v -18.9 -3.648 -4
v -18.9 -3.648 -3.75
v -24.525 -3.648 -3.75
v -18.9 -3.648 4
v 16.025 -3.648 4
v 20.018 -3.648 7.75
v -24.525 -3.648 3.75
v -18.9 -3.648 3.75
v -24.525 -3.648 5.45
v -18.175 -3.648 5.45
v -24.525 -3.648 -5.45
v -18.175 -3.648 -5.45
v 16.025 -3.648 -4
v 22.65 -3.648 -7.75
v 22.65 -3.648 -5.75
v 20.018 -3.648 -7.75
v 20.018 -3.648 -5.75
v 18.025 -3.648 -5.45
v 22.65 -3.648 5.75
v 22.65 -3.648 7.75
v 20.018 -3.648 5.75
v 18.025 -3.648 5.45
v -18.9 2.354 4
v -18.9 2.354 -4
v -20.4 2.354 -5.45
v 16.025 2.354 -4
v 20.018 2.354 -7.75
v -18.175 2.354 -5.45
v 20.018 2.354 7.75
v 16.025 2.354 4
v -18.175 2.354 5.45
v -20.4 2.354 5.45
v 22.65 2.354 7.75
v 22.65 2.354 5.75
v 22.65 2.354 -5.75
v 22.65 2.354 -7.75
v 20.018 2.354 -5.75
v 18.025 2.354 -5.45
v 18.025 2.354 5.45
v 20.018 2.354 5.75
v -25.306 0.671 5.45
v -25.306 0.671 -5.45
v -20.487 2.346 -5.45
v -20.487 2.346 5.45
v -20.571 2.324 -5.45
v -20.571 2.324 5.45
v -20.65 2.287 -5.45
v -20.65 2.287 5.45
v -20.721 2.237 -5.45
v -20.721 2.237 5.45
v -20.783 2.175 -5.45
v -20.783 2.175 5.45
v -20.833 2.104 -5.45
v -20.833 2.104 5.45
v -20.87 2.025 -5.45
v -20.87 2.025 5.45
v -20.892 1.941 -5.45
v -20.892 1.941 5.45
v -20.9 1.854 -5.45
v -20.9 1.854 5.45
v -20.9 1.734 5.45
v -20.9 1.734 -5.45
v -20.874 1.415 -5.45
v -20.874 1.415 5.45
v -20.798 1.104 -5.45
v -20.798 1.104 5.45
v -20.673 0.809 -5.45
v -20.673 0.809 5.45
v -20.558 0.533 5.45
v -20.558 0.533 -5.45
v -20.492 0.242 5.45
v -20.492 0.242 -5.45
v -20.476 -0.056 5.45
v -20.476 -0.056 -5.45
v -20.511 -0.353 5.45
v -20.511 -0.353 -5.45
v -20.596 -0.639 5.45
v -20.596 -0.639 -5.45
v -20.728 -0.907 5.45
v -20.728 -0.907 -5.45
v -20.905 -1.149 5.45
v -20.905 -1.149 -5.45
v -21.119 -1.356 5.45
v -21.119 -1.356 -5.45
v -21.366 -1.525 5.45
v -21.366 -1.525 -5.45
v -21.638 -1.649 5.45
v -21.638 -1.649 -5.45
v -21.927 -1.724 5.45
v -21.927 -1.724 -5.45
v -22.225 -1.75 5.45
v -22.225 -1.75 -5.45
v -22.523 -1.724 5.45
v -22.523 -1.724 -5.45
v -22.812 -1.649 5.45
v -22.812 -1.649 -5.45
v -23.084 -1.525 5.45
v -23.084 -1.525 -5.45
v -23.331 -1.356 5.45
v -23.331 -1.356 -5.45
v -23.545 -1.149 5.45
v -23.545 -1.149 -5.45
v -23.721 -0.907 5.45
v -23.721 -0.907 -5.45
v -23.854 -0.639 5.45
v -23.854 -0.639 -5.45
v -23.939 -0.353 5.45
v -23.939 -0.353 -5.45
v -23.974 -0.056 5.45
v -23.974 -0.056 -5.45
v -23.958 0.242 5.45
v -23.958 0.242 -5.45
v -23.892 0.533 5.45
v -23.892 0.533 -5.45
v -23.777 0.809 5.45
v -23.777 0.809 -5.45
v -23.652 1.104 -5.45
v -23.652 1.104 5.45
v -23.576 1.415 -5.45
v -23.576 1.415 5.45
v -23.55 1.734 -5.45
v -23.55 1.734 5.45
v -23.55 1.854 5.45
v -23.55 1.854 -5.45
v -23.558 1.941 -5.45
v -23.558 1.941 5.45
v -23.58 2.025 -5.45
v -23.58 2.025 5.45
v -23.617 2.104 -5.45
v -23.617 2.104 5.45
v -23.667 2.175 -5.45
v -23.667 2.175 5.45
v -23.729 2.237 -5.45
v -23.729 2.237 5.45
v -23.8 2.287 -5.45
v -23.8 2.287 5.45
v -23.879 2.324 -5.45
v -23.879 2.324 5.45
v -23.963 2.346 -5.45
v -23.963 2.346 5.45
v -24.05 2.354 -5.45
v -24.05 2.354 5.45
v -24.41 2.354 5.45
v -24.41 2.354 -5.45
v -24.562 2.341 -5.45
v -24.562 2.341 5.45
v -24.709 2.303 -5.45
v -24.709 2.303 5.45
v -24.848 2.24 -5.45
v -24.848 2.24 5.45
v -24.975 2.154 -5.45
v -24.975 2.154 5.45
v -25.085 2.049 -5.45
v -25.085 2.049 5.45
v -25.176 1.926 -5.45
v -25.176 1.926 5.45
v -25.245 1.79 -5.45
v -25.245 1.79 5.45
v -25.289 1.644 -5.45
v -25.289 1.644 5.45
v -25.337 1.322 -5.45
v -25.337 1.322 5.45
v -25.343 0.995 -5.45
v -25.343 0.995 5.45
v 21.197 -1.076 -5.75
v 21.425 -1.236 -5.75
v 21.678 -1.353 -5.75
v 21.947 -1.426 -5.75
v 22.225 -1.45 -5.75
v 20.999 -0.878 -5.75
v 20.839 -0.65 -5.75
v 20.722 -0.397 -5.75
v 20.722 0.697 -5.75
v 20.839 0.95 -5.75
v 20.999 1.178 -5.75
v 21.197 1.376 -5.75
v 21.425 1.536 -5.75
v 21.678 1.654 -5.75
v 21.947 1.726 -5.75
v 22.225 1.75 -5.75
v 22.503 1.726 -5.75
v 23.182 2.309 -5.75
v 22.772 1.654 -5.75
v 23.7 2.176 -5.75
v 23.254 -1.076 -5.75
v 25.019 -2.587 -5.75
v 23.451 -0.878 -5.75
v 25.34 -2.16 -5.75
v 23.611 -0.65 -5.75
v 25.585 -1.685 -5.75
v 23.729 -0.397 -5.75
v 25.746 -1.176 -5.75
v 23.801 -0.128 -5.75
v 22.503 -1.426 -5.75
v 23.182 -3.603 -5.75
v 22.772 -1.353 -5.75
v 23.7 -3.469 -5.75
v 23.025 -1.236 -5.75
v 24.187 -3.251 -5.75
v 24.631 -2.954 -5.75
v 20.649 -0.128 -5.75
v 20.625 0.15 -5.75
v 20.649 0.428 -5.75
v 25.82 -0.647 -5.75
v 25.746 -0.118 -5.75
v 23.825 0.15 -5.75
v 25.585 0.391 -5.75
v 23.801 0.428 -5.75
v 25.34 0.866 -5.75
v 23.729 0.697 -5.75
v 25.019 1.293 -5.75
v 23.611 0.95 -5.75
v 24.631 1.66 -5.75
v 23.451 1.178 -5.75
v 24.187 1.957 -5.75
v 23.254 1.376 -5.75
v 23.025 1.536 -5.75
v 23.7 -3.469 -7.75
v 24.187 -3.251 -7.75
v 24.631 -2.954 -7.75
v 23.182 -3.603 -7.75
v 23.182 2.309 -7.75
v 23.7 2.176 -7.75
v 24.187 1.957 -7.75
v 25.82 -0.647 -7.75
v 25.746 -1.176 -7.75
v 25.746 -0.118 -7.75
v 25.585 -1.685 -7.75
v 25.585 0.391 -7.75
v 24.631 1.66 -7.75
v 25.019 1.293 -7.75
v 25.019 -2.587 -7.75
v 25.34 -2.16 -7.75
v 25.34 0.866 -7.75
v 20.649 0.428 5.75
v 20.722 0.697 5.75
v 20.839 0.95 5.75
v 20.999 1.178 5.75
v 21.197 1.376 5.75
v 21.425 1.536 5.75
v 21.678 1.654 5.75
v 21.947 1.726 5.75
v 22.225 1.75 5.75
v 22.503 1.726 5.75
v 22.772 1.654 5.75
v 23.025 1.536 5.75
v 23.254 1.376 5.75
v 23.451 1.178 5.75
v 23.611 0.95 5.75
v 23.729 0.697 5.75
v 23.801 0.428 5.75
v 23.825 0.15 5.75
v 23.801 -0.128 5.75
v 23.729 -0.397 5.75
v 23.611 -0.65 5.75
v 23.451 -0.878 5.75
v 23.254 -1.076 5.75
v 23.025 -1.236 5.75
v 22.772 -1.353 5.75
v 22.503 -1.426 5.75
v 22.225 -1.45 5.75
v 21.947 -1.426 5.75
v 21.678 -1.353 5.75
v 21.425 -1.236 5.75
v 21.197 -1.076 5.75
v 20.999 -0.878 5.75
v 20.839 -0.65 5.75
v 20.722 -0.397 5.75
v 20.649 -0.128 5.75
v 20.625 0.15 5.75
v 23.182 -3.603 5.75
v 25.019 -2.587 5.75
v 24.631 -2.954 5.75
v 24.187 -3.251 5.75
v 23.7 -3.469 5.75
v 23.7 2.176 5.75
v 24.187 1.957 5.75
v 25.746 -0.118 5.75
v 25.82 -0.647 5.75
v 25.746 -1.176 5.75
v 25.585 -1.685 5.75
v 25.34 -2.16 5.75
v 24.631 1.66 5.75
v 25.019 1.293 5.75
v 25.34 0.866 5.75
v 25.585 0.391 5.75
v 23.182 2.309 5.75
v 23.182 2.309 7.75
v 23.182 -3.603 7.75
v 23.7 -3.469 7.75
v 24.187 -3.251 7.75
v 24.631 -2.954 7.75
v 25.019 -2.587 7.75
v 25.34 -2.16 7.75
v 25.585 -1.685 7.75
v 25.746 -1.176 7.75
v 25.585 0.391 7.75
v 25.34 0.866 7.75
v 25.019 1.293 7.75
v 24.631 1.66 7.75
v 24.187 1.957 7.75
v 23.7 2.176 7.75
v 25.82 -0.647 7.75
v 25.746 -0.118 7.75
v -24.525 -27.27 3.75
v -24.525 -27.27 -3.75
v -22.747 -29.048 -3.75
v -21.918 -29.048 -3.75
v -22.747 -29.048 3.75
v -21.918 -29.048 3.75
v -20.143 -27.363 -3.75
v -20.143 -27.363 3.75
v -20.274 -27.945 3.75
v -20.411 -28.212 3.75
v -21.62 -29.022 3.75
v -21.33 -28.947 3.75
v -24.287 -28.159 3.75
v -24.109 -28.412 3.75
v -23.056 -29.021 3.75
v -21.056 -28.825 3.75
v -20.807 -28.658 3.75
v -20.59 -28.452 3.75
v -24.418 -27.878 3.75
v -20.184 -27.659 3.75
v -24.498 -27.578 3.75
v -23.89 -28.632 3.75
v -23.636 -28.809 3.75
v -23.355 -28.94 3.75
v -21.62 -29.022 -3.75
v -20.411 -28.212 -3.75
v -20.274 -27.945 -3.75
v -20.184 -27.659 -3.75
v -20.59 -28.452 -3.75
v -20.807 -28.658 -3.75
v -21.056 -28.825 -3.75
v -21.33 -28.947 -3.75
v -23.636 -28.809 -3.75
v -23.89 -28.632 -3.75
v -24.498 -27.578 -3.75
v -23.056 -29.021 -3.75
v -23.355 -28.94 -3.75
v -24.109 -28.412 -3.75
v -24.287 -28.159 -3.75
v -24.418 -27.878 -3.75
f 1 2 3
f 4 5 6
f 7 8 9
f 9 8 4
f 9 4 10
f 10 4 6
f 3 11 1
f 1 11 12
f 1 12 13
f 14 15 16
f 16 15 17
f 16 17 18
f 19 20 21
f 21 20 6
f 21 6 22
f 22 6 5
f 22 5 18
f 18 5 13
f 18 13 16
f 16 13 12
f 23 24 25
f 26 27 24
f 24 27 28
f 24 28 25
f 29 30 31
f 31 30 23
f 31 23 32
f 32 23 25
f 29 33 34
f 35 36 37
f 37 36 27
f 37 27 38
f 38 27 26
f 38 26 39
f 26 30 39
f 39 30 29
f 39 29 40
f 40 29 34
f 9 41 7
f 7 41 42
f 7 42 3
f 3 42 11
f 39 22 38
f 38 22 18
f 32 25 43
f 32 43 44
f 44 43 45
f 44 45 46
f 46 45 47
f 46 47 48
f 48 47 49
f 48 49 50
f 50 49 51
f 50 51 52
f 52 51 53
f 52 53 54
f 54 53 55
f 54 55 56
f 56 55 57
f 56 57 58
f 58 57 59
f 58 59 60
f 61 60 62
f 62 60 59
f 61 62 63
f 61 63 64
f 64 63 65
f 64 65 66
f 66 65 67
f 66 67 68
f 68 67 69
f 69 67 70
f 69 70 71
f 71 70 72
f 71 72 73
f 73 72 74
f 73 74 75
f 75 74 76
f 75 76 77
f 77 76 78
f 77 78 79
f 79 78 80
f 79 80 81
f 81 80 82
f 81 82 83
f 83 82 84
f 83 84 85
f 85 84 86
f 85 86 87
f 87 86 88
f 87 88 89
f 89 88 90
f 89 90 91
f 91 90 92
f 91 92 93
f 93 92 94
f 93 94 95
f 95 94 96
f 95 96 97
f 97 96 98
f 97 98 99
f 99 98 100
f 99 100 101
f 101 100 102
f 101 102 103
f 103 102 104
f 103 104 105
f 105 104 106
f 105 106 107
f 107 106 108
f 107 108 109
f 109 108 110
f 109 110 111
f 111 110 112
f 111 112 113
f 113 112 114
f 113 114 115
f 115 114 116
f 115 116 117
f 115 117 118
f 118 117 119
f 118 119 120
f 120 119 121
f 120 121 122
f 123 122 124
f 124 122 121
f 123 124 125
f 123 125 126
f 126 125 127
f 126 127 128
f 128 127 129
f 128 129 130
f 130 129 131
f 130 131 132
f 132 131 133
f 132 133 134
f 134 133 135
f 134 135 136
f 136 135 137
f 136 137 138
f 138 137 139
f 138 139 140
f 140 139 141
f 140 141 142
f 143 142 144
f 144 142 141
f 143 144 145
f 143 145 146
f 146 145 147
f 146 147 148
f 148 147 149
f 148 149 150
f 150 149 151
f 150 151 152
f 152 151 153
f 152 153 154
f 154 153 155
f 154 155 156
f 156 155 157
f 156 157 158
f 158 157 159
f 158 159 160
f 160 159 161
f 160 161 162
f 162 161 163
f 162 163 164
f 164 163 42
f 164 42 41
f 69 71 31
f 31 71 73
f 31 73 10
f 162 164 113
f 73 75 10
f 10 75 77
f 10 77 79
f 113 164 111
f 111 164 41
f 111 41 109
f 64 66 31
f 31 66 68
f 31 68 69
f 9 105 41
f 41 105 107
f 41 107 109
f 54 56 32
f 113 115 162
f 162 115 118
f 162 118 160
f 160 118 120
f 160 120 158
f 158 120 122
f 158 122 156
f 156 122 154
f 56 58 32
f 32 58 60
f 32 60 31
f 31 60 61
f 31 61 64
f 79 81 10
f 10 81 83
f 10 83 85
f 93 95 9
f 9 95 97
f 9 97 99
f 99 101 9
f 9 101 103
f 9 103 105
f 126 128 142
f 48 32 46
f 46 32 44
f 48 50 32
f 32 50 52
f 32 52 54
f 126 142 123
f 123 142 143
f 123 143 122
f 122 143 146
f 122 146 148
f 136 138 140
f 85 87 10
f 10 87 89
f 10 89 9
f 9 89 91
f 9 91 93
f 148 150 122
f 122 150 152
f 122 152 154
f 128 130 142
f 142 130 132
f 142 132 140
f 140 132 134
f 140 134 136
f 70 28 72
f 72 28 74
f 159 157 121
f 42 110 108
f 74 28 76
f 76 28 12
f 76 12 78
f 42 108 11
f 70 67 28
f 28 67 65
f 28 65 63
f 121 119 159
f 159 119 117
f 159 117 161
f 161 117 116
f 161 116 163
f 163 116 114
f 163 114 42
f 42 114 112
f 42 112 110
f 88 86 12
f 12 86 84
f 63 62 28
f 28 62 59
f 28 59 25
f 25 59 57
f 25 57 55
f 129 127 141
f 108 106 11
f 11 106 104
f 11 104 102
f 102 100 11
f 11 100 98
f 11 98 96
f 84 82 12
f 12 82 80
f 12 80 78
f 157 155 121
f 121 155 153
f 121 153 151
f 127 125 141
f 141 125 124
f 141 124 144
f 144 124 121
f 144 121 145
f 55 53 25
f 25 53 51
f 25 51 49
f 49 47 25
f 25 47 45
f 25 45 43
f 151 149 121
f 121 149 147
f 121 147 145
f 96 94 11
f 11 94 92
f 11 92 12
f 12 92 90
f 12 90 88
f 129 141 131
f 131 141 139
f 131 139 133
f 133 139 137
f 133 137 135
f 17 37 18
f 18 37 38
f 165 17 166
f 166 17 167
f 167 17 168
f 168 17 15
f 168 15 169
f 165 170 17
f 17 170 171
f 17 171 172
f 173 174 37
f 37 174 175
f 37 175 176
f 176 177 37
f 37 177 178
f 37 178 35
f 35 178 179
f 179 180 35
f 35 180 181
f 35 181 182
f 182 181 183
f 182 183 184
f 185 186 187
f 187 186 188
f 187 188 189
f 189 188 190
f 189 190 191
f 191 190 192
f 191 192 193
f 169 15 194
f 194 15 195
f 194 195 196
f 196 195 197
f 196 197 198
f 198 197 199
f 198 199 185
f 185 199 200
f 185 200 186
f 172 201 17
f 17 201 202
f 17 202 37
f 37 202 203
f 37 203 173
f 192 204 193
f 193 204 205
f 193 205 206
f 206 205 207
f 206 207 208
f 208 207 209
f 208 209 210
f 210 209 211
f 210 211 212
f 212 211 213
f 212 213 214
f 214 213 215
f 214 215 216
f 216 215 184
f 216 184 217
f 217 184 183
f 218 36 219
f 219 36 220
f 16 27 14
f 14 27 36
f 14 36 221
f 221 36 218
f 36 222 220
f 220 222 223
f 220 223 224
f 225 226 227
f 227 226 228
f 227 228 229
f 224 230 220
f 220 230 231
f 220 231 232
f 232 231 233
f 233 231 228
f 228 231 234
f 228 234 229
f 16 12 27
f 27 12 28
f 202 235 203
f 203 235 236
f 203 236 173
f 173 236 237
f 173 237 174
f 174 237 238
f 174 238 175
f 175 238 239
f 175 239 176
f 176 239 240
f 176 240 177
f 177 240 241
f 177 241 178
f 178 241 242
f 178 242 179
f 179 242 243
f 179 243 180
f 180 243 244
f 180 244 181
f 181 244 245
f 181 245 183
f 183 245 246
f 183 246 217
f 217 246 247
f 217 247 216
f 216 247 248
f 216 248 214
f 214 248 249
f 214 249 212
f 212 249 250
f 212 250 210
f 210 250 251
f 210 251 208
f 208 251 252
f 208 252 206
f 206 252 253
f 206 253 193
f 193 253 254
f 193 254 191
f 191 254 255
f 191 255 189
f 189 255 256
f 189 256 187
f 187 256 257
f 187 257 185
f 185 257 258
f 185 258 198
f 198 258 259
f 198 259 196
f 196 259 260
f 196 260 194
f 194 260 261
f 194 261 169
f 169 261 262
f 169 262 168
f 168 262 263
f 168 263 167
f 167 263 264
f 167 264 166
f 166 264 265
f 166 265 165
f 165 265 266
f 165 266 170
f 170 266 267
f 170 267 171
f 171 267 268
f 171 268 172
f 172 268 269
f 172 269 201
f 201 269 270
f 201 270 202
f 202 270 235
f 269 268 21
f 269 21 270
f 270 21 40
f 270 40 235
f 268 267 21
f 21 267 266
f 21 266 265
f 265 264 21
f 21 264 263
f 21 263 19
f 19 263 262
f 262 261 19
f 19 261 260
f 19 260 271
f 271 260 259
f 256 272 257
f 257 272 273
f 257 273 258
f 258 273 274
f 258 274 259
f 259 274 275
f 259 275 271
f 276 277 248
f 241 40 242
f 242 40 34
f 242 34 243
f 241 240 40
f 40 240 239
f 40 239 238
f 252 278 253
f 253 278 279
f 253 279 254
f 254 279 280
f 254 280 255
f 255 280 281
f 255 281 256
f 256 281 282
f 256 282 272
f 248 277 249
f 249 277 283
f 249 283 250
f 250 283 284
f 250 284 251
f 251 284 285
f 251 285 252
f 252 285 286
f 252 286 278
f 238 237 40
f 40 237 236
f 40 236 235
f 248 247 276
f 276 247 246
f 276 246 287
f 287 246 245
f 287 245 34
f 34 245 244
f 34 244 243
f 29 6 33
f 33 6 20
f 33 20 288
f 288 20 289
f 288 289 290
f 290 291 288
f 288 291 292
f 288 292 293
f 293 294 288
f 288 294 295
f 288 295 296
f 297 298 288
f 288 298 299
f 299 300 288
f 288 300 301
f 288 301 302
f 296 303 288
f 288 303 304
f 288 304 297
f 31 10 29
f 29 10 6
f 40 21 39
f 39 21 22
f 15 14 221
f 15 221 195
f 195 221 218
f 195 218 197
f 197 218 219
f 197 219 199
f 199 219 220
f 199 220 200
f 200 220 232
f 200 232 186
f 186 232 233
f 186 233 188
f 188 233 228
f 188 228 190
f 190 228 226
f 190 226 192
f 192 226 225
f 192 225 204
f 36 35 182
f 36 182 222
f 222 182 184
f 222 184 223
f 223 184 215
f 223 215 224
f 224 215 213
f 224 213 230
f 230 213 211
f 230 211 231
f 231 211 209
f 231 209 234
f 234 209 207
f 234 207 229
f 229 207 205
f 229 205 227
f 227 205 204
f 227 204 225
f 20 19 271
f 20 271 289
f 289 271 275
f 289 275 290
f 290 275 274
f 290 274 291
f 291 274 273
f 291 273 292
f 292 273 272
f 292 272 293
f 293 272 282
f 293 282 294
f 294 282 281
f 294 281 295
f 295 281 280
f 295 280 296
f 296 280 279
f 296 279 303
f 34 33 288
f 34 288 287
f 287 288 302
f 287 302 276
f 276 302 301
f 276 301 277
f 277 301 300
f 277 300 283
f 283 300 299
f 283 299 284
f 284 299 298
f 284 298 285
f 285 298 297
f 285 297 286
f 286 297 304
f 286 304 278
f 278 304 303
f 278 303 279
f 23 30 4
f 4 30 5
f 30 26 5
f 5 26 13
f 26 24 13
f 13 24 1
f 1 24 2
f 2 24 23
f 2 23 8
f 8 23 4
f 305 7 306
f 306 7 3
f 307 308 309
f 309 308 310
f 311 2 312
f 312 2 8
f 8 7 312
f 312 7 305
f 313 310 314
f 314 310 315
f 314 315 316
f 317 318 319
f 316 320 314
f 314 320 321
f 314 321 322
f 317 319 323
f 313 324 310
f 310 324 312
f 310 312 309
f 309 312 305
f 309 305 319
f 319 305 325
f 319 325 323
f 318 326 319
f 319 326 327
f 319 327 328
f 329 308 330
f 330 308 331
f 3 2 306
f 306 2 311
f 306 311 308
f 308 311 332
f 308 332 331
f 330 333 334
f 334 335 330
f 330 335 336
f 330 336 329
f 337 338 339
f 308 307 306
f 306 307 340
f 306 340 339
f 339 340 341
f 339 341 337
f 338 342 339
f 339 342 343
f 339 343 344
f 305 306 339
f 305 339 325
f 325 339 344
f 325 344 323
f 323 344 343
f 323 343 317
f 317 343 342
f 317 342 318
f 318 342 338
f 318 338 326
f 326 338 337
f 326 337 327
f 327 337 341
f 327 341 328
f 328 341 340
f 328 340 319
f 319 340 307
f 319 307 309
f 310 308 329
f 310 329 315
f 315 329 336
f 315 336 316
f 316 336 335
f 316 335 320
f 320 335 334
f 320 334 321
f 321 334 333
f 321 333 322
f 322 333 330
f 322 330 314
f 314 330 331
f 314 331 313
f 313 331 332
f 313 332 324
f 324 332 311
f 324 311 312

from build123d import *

# Parameters (mm, degrees)
BOSS_EXTRUDE1_DEPTH   = 5.45
BOSS_EXTRUDE1_2_DEPTH = 5.45
BOSS_EXTRUDE2_DEPTH   = 5.75
BOSS_EXTRUDE3_DEPTH   = 6.001690088
FILLET1_R             = 3.175
SKETCH3_W             = 34.925
SKETCH3_H             = 8
CUT_EXTRUDE1_DEPTH    = 28.618228517
BOSS_EXTRUDE5_DEPTH   = 3.75
FILLET2_R             = 1.778


with BuildPart() as part:
    # Sketch1 → Boss-Extrude1 (new, symmetric)
    with BuildSketch(Plane.XY):
        with BuildLine():
            ThreePointArc((20.625, 0.15), (20.842969199, -0.656220109), (21.43748858, -1.242776279))
            ThreePointArc((21.43748858, -1.242776279), (23.824989974, 0.155664255), (21.42764708, 1.537165571))
            ThreePointArc((21.42764708, 1.537165571), (20.840123711, 0.951322447), (20.625, 0.15))
        make_face()
    extrude(amount=BOSS_EXTRUDE1_DEPTH, both=True)

    # Sketch1<4> → Boss-Extrude2 (add, symmetric)
    with BuildSketch(Plane.XY):
        with BuildLine():
            ThreePointArc((20.625, 0.15), (20.842969199, -0.656220109), (21.43748858, -1.242776279))
            ThreePointArc((21.43748858, -1.242776279), (23.824989974, 0.155664255), (21.42764708, 1.537165571))
            ThreePointArc((21.42764708, 1.537165571), (20.840123711, 0.951322447), (20.625, 0.15))
        make_face()
    extrude(amount=BOSS_EXTRUDE2_DEPTH, both=True)



with BuildPart() as body_2:
    # Sketch1 → Boss-Extrude1 2 (new, symmetric)
    with BuildSketch(Plane.XY):
        with BuildLine():
            Line((-24.525, -3.647655774), (18.025, -3.647655774))
            Line((18.025, -3.647655774), (18.025, 2.354034313))
            Line((18.025, 2.354034313), (-18.725, 2.354034313))
            Line((-18.725, 2.354034313), (-20.4, 2.354034313))
            ThreePointArc((-20.4, 2.354034313), (-20.753553391, 2.207587704), (-20.9, 1.854034313))
            Line((-20.9, 1.854034313), (-20.9, 1.734034313))
            ThreePointArc((-20.9, 1.734034313), (-20.842506971, 1.257939085), (-20.673333333, 0.809216013))
            ThreePointArc((-20.673333333, 0.809216013), (-22.225, -1.75), (-23.776666667, 0.809216013))
            ThreePointArc((-23.776666667, 0.809216013), (-23.607493029, 1.257939085), (-23.55, 1.734034313))
            Line((-23.55, 1.734034313), (-23.55, 1.854034313))
            ThreePointArc((-23.55, 1.854034313), (-23.696446609, 2.207587704), (-24.05, 2.354034313))
            Line((-24.05, 2.354034313), (-24.409724637, 2.354034313))
            ThreePointArc((-24.409724637, 2.354034313), (-24.974960254, 2.154397574), (-25.289436326, 1.644053639))
            ThreePointArc((-25.289436326, 1.644053639), (-25.345434425, 1.158547963), (-25.305905598, 0.671424755))
            Line((-25.305905598, 0.671424755), (-24.525, -3.647655774))
        make_face()
    extrude(amount=BOSS_EXTRUDE1_2_DEPTH, both=True)


with BuildPart() as part_1:
    add(part.part)

    add(body_2.part)  # Boss-Extrude3 merges body 2
    # Sketch2 → Boss-Extrude3 (add)
    with BuildSketch(Plane(origin=(0, -3.647655774, 0), x_dir=(-1, 0, 0), z_dir=(0, -1, 0))):
        Polygon((18.175, 5.45), (-18.025, 5.45), (18.175, 0), align=None)
        Polygon((-25.825, 7.75), (-25.825, 5.75), (-20.01766055, 5.75), (-18.025, 5.45), (18.175, 5.45), (-20.01766055, 7.75), align=None)
        Polygon((18.175, -5.45), (18.175, 0), (-18.025, -5.45), align=None)
        Polygon((-20.01766055, -7.75), (18.175, -5.45), (-18.025, -5.45), (-20.01766055, -5.75), (-25.825, -5.75), (-25.825, -7.75), align=None)
    extrude(amount=-BOSS_EXTRUDE3_DEPTH)

    # Fillet1
    # the kernel refuses this fillet: 3.175 mm, written as the material it takes off along each edge
    with BuildSketch(Plane(origin=(25.825, 2.354034313, -15.687500001), x_dir=(-1, 0, 0), z_dir=(0, 0, 1)), Plane(origin=(25.825, 2.354034313, -2.187500001), x_dir=(-1, 0, 0), z_dir=(0, 0, 1))) as fillet1_piece_1:
        with BuildLine():
            CenterArc((FILLET1_R, FILLET1_R), FILLET1_R, 180, 90)
            Line((0, FILLET1_R), (0, 0))
            Line((0, 0), (FILLET1_R, 0))
        make_face()
    extrude(amount=17.875000002, mode=Mode.SUBTRACT)
    with BuildSketch(Plane(origin=(25.825, -3.647655774, -15.6875), x_dir=(-1, 0, 0), z_dir=(0, 0, 1))) as fillet1_piece_2:
        with BuildLine():
            CenterArc((FILLET1_R, -FILLET1_R), FILLET1_R, 90, 90)
            Line((0, -FILLET1_R), (0, 0))
            Line((0, 0), (FILLET1_R, 0))
        make_face()
    extrude(amount=17.875, mode=Mode.SUBTRACT)
    with BuildSketch(Plane(origin=(25.825, -3.647655774, -2.1875), x_dir=(0, 1, 0), z_dir=(0, 0, 1))) as fillet1_piece_3:
        with BuildLine():
            CenterArc((FILLET1_R, FILLET1_R), FILLET1_R, 180, 90)
            Line((0, FILLET1_R), (0, 0))
            Line((0, 0), (FILLET1_R, 0))
        make_face()
    extrude(amount=17.875, mode=Mode.SUBTRACT)

    # Sketch3 → Cut-Extrude1 (cut, through all)
    with BuildSketch(Plane(origin=(0, -3.647655774, 0), x_dir=(-1, 0, 0), z_dir=(0, -1, 0))):
        with Locations((1.4375, 0)):
            Rectangle(SKETCH3_W, SKETCH3_H)
    extrude(amount=-CUT_EXTRUDE1_DEPTH, mode=Mode.SUBTRACT)

    # Sketch4 → Boss-Extrude5 (add, symmetric)
    with BuildSketch(Plane.XY):
        Polygon((-18.9, -3.647655774), (-20.231157594, -29.047655774), (-24.525, -29.047655774), (-24.525, -3.647655774), align=None)
    extrude(amount=BOSS_EXTRUDE5_DEPTH, both=True)

    # Fillet2
    fillet2_edges = [part_1.edges().sort_by_distance(p)[0] for p in [
        (-24.525, -29.047655774, 0),
        (-20.231157594, -29.047655774, 0),
    ]]
    fillet(fillet2_edges, radius=FILLET2_R)


solid = part_1.part
